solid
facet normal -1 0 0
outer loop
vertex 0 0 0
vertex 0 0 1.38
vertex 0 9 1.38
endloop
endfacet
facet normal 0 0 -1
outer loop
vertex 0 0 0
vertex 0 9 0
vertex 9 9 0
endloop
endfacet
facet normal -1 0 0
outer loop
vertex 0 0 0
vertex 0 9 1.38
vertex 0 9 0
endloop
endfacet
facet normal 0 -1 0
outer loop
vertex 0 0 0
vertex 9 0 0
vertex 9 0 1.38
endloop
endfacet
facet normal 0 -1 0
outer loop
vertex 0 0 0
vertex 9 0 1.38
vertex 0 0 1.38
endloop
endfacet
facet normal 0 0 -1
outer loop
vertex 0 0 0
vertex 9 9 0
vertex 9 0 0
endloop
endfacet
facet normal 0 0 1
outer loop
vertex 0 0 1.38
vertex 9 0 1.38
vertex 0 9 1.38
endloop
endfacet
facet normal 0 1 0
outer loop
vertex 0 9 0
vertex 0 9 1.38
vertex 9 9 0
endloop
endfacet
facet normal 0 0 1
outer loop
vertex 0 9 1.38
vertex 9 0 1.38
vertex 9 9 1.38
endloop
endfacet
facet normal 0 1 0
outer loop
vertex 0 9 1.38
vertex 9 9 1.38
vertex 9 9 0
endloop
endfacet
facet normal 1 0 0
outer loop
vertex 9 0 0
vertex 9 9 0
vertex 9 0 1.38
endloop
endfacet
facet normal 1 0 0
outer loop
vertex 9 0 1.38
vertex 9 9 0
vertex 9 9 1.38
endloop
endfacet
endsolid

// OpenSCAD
/* Warning, this is a very basic generator with a lot of approximation 
input data : [LFBGA, ABA, 9x9x1.38mm, 100, , A, C04-01067A]
generated by com.zoubworld.electronics.cad.model3d.Basic
Date : Sun Feb 15 10:50:49 CET 2026
*/

//body
color("black")
translate([0,0,0])
cube([9.0,9.0,1.38], center=false);
